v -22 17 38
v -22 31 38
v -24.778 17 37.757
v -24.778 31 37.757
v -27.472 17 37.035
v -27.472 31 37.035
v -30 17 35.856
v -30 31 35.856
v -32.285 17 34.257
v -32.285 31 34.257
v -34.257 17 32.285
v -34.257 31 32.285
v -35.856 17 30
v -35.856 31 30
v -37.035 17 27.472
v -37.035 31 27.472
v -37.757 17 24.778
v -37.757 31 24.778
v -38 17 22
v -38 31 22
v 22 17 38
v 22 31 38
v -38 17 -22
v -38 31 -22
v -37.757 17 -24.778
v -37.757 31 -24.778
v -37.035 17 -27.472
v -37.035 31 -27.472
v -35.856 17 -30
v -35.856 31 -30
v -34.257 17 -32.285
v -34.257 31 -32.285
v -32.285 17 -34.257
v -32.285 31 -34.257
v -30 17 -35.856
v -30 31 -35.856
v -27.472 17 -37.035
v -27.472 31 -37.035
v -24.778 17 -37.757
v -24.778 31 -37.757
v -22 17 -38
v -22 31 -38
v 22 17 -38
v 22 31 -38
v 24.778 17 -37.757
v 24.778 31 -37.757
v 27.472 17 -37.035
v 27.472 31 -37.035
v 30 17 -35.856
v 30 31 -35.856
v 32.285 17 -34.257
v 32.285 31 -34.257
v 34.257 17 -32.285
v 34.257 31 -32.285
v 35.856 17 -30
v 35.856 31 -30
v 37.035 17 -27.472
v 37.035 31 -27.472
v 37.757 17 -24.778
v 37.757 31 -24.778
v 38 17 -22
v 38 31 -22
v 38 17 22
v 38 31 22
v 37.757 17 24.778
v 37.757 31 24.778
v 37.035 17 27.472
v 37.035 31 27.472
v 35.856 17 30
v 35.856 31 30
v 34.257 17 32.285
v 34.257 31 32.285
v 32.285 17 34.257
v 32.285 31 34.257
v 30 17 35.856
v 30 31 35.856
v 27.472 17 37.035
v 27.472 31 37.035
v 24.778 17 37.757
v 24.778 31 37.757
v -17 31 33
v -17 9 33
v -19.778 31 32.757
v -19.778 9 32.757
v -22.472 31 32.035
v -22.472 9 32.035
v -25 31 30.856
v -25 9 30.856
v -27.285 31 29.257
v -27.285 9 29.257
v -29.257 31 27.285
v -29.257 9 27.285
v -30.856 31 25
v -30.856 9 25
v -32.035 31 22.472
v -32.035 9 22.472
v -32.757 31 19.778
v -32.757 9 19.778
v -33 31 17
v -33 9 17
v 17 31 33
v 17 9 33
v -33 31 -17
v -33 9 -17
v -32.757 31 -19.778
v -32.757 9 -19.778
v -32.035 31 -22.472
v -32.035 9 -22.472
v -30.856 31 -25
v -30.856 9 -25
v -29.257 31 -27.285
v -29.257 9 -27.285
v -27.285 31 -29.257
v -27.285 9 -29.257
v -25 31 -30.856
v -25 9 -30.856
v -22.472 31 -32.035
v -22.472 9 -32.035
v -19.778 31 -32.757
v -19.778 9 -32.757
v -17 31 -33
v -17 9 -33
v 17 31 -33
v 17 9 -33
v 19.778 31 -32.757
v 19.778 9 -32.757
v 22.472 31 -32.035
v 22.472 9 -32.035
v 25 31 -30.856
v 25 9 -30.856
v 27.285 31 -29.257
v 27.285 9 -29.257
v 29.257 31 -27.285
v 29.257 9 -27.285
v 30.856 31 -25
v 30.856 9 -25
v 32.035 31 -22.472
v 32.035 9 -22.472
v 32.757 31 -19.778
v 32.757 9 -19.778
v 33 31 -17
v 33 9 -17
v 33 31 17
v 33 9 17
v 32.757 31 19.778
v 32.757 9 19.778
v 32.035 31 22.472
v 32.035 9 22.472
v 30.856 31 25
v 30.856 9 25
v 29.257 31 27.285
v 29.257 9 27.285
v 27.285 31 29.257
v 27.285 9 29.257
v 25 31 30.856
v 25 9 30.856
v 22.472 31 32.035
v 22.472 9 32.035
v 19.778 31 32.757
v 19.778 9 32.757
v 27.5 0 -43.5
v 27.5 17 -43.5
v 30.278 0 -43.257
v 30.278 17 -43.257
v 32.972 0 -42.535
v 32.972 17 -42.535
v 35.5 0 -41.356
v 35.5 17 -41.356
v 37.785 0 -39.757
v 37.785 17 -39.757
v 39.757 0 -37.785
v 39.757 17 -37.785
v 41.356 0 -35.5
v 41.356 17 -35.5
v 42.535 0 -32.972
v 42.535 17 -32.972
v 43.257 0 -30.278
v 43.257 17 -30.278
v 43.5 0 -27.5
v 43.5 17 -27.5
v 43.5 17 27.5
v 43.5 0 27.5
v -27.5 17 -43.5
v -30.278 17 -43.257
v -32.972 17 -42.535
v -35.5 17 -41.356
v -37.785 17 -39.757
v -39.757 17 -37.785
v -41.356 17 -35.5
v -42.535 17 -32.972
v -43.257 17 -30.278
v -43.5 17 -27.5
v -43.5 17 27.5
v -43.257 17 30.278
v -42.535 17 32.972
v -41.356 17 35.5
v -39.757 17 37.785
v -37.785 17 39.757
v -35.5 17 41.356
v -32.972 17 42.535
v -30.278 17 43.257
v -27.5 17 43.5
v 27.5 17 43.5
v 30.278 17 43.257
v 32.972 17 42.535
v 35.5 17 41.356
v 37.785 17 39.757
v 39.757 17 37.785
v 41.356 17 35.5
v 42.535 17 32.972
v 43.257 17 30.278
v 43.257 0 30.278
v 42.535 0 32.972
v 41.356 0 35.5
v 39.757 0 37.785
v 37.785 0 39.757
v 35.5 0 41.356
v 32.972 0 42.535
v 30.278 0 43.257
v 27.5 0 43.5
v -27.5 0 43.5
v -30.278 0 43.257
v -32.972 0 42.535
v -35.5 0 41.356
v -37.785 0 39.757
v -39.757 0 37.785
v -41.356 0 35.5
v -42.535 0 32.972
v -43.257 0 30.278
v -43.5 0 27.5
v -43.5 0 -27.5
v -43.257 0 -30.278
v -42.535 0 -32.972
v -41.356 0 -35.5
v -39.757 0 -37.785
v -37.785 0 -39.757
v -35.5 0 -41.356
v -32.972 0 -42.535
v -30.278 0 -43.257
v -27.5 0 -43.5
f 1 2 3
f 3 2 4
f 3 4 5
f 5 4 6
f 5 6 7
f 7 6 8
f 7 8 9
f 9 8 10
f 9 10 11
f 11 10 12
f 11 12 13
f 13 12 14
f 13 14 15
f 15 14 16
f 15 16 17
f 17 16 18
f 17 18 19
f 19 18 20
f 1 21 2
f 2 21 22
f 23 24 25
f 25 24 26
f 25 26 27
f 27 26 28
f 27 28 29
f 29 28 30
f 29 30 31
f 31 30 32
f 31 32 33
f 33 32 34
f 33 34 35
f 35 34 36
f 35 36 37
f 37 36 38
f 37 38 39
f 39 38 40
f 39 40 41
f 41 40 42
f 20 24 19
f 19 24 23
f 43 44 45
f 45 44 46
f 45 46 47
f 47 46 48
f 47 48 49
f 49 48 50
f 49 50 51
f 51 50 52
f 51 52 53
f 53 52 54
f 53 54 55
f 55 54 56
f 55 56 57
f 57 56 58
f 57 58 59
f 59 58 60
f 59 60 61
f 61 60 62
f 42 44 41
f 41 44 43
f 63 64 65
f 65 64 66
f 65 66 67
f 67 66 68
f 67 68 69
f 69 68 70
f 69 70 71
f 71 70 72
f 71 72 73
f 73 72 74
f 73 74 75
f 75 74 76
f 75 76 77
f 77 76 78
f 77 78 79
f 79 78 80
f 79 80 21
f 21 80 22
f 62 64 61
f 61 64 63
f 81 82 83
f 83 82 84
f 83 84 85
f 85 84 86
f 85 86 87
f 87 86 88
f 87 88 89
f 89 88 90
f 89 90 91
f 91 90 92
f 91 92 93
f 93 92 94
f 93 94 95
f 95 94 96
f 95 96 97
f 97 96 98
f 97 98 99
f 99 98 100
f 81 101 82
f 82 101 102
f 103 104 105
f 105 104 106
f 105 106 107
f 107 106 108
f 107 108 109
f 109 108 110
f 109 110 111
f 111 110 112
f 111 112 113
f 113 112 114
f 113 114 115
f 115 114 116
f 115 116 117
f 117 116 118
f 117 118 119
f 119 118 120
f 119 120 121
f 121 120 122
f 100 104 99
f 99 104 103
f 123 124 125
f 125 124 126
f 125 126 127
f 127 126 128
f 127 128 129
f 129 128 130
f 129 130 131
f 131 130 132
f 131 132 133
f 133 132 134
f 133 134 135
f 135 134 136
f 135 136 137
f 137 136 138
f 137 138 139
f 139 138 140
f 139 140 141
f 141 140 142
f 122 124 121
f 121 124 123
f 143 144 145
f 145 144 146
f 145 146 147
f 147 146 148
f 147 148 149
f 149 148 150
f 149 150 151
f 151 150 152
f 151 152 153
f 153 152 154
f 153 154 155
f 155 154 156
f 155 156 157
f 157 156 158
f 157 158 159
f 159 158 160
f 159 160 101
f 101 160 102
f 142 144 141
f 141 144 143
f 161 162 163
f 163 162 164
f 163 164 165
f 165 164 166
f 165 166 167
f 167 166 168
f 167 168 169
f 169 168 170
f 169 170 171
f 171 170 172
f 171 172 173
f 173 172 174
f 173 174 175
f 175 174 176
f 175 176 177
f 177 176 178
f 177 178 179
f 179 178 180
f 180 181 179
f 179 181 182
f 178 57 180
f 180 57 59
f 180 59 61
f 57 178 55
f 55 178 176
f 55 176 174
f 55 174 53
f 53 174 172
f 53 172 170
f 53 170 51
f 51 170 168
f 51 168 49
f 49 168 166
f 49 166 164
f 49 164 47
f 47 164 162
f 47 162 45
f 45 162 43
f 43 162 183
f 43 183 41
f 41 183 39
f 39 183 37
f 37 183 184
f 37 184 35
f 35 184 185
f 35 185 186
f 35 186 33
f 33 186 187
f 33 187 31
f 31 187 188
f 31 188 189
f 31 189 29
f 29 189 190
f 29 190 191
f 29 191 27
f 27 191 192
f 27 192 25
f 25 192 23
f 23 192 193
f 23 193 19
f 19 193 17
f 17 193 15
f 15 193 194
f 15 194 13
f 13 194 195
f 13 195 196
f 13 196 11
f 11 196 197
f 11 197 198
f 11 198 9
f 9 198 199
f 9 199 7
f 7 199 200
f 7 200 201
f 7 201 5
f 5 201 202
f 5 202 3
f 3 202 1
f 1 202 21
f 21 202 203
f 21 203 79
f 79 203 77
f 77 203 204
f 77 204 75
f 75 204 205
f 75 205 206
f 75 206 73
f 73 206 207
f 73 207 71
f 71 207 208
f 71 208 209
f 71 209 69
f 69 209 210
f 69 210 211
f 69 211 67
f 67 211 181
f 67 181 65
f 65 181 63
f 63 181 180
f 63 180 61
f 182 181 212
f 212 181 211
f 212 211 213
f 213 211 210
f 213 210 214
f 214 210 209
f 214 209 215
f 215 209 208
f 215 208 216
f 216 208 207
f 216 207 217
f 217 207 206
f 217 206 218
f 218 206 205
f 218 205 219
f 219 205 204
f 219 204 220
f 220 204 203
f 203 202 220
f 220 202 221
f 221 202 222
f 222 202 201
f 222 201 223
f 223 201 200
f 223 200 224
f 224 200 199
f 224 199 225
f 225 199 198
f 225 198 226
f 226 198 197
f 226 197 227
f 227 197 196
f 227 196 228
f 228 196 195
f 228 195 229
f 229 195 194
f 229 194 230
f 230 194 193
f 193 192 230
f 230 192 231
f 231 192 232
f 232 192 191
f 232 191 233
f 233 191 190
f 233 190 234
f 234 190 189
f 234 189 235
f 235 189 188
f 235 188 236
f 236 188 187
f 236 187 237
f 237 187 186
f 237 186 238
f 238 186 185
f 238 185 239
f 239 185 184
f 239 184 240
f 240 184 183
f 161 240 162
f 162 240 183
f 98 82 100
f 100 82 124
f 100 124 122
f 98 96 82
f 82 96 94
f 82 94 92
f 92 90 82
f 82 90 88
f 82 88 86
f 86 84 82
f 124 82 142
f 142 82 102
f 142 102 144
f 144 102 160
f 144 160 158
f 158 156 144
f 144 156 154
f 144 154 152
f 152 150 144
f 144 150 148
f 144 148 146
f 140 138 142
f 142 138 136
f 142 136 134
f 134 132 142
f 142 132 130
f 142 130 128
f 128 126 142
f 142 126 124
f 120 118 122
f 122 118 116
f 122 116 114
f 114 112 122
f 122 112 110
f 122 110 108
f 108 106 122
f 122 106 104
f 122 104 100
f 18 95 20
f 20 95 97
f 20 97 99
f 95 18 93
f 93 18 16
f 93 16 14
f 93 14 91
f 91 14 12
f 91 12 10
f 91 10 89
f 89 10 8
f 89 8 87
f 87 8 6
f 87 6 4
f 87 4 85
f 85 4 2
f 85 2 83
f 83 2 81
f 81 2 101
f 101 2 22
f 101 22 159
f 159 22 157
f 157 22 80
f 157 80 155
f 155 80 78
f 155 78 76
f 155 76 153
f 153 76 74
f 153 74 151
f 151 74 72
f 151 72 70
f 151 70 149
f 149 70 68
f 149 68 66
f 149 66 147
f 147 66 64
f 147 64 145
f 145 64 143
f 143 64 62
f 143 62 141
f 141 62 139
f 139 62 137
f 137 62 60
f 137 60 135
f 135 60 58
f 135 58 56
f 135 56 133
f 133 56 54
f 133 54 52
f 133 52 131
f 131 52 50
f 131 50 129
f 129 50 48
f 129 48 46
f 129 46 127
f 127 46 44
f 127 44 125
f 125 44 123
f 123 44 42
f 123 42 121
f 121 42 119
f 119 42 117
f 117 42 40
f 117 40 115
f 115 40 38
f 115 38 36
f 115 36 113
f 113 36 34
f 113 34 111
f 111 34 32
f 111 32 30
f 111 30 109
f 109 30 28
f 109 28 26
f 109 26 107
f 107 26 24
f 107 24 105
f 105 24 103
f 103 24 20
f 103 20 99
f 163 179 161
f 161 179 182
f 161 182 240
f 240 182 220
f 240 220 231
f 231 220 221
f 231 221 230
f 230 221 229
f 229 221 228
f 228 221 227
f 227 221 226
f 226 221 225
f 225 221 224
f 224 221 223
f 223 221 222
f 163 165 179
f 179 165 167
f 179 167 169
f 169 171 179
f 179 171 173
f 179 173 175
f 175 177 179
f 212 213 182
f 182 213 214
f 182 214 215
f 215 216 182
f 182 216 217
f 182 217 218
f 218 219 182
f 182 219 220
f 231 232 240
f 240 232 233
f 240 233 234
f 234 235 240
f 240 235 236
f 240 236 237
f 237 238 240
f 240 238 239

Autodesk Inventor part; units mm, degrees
ref_plane "YZ Plane" through (0, 0, 0) normal (1, 0, 0) x (0, 1, 0)
ref_plane "XZ Plane" through (0, 0, 0) normal (0, 1, 0) x (-1, 0, 0)
ref_plane "XY Plane" through (0, 0, 0) normal (0, 0, 1) x (1, 0, 0)
sketch "Sketch1" plane through (0, 0, 0) normal (0, 1, 0) x (-1, 0, 0)
  line L0 (-38, 38) -> (38, 38)
  line L1 (38, 38) -> (38, -38)
  line L2 (38, -38) -> (-38, -38)
  line L3 (-38, -38) -> (-38, 38)
  line L4 (-38, 38) -> (38, -38) construction
  line L5 (38, 38) -> (-38, -38) construction
  line L6 (-43.5, 43.5) -> (43.5, 43.5)
  line L7 (43.5, 43.5) -> (43.5, -43.5)
  line L8 (43.5, -43.5) -> (-43.5, -43.5)
  line L9 (-43.5, -43.5) -> (-43.5, 43.5)
  line L10 (-43.5, 43.5) -> (43.5, -43.5) construction
  line L11 (43.5, 43.5) -> (-43.5, -43.5) construction
  point P0 (0, 0)
  dimension "d0" = 76
  dimension "d1" = 76
  dimension "d2" = 87
  dimension "d3" = 87
extrude "Extrusion1" add sketch "Sketch1" along normal blind 36 contours L0 L1 L2 L3
extrude "Extrusion2" add sketch "Sketch1" along normal blind 24 contours L0 L1 L2 L3 | L6 L7 L8 L9
sketch "Sketch2" plane through (0, 36, 0) normal (0, 1, 0) x (1, 0, 0)
  line L0 (33, -33) -> (-33, -33)
  line L1 (-33, -33) -> (-33, 33)
  line L2 (-33, 33) -> (33, 33)
  line L3 (33, 33) -> (33, -33)
  line L4 (33, -33) -> (-33, 33) construction
  line L5 (-33, -33) -> (33, 33) construction
  line L6 (-38, 38) -> (-38, -38) projected
  line L7 (38, 38) -> (-38, 38) projected
  point P0 (0, 0)
  dimension "d8" = 5
  dimension "d9" = 5
extrude "Extrusion3" cut sketch "Sketch2" against normal blind 27
fillet "Fillet1" radius 16 12 edges at (38, 30, 38) (38, 30, -38) (-38, 30, -38) (-38, 30, 38) (-43.5, 12, -43.5) (-43.5, 12, 43.5) (43.5, 12, 43.5) (43.5, 12, -43.5) (33, 22.5, 33) (33, 22.5, -33) (-33, 22.5, -33) (-33, 22.5, 33)
ref_plane "Work Plane1" through (0, 0, -27.5) normal (-1, 0, 0) x (0, 0, 1)
move faces "Move1" translate (0, -6, 0) faces at (41.6667, 24, 7.3333)
move faces "Move2" translate (0, -1, 0) faces at (41.6667, 18, -7.3333)
move faces "Move3" translate (0, -5, 0) faces at (5.6667, 36, -36.3333)
properties part number "Podstawka_dla_skurwysyna"
